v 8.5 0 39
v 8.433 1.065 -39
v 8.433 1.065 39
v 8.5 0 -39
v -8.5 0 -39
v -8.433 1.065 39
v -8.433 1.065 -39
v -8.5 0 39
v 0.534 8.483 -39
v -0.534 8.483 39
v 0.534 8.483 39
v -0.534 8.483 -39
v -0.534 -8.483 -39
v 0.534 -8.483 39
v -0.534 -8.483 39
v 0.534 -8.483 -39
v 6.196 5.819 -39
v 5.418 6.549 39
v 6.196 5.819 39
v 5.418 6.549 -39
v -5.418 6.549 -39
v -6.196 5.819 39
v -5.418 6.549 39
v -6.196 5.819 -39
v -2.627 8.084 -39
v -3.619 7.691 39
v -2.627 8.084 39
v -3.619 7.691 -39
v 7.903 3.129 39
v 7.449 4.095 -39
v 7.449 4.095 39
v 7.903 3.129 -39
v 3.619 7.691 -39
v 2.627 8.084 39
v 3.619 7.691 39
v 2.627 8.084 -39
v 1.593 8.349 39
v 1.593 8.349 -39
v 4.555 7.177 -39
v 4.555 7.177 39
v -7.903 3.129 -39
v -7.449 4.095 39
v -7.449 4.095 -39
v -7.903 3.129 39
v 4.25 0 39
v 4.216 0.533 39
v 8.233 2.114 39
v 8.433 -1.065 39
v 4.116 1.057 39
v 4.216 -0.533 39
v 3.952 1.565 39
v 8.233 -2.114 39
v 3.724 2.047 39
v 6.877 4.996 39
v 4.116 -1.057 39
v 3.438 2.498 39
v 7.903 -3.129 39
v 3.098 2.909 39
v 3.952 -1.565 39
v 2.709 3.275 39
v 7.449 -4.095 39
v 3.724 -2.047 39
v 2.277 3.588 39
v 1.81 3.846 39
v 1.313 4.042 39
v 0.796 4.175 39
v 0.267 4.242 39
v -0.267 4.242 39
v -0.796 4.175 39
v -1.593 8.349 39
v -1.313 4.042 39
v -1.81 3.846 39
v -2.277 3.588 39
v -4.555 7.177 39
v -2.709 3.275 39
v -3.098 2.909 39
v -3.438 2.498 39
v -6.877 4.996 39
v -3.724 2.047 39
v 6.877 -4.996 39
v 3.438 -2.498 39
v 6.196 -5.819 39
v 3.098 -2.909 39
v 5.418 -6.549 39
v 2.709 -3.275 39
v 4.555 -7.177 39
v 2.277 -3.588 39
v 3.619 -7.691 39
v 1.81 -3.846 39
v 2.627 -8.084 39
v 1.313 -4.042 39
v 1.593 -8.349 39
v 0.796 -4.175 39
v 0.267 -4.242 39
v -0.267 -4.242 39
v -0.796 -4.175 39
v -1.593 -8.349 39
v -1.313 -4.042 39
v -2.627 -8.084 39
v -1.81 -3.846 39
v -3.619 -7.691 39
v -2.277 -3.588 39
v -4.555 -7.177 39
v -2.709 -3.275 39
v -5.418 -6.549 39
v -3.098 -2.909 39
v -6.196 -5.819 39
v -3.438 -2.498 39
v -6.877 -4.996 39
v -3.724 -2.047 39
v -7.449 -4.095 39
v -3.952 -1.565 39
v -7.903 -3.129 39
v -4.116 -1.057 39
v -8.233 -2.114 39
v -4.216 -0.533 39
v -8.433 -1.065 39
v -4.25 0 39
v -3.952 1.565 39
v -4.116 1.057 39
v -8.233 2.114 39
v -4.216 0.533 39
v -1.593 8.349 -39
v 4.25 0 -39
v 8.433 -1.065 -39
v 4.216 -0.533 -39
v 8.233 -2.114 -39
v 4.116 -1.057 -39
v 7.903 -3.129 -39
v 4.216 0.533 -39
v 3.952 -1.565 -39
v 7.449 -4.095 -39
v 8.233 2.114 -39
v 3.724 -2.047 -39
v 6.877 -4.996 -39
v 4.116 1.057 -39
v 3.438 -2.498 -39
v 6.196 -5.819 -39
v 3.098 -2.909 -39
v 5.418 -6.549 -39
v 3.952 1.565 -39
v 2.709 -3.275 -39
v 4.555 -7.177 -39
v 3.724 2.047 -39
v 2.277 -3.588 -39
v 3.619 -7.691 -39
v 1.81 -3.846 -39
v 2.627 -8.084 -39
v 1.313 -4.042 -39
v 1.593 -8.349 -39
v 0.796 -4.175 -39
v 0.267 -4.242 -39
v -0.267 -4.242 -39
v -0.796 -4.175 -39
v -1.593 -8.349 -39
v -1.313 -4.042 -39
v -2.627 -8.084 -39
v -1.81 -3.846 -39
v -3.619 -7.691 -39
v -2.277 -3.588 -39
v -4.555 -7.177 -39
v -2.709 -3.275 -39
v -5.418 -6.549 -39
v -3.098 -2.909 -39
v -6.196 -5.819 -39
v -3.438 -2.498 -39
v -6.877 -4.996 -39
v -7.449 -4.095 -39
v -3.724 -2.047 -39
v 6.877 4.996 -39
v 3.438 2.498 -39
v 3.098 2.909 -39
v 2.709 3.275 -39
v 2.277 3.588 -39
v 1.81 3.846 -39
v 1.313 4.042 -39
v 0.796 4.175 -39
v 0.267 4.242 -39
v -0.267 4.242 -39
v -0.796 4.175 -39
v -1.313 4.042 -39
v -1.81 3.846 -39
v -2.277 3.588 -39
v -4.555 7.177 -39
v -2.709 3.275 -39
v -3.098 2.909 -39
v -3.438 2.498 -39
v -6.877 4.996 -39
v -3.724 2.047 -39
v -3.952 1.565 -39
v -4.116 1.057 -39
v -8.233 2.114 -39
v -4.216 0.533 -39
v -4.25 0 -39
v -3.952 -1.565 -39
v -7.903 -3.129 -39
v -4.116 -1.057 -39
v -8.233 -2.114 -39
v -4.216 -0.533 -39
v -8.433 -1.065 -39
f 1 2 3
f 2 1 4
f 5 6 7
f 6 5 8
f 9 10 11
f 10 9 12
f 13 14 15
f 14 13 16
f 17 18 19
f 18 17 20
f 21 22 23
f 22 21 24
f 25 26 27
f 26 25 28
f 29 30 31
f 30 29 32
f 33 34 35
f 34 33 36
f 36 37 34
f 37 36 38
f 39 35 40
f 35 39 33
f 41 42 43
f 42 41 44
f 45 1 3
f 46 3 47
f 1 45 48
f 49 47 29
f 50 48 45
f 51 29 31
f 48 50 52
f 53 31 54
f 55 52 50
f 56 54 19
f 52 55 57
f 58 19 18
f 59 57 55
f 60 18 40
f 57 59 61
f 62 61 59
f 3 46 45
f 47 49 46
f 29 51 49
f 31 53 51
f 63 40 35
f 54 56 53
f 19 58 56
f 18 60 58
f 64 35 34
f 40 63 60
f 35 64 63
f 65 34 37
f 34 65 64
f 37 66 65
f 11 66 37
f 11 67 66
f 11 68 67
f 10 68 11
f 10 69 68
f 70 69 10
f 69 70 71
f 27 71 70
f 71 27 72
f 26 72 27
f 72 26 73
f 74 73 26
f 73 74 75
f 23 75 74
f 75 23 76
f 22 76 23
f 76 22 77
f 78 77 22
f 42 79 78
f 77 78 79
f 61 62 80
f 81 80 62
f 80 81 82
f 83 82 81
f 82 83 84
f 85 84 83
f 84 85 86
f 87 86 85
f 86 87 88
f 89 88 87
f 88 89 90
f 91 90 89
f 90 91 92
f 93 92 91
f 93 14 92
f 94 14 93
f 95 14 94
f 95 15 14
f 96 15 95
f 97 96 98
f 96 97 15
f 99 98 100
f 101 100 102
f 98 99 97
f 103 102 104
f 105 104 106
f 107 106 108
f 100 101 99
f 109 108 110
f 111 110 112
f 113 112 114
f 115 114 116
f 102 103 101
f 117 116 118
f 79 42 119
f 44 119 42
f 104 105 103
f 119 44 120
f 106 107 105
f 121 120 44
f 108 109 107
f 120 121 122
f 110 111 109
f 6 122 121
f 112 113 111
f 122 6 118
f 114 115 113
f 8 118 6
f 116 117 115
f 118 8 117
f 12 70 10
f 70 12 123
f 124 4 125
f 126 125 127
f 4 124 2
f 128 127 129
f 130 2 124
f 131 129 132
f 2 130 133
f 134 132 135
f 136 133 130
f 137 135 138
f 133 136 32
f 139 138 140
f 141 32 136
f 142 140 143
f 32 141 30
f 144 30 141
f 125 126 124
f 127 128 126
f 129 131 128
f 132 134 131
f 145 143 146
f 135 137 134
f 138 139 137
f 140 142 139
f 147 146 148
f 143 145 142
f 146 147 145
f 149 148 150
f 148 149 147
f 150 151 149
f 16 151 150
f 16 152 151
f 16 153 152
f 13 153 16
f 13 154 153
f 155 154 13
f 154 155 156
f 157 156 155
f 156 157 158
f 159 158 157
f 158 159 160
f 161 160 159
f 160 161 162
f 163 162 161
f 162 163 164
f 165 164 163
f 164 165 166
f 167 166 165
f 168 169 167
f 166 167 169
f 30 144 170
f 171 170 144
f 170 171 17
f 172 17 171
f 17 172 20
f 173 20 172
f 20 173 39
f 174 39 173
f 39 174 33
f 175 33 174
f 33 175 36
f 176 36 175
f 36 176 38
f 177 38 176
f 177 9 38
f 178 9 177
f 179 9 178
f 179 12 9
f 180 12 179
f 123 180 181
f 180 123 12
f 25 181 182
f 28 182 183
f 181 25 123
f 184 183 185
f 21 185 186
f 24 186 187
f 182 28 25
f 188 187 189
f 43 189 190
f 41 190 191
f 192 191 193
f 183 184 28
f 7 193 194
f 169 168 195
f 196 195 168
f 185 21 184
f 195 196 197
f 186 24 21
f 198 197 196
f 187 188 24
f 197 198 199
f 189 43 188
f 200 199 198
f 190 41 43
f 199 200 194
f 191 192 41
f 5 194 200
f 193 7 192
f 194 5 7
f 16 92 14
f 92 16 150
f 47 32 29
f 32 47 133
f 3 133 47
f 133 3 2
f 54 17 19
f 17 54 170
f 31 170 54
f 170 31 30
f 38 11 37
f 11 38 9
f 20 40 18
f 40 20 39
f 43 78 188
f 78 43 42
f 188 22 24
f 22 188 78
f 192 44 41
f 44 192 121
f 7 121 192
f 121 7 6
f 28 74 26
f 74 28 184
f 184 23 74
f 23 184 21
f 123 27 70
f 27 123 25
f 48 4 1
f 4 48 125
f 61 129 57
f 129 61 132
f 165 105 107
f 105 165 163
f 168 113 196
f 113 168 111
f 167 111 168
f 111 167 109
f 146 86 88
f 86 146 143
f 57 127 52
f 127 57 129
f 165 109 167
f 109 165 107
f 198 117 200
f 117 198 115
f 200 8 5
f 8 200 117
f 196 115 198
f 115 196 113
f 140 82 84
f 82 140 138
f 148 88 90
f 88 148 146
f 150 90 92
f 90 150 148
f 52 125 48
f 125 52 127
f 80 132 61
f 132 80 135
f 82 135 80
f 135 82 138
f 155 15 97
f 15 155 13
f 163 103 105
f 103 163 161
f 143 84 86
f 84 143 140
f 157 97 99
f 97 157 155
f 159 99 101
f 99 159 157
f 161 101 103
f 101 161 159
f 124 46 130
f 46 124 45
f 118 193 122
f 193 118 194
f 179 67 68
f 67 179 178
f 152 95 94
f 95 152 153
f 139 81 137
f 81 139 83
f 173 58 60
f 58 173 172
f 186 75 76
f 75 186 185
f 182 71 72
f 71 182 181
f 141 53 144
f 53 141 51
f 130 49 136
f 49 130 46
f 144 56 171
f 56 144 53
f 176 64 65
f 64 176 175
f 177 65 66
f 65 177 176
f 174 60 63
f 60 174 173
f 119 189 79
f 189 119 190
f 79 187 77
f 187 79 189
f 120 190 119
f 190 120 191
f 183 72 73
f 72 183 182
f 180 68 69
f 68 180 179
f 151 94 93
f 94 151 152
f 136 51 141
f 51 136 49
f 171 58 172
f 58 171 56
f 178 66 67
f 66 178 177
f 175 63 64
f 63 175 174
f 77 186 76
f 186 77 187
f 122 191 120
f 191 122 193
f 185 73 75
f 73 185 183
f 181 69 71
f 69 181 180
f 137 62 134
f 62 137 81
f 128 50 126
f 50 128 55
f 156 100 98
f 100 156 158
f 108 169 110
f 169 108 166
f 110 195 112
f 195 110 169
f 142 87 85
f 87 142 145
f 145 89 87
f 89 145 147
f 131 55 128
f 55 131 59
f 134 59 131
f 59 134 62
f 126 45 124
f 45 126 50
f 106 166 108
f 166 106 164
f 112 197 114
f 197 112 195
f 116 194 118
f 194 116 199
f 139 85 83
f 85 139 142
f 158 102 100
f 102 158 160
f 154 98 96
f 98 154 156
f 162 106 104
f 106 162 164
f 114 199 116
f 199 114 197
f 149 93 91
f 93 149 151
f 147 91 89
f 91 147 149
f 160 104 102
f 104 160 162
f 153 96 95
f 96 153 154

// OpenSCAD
$fn = 50;


difference() {
	union() {
		translate(v = [0, 0, -39.0000000000]) {
			cylinder(h = 78, r = 8.5000000000);
		}
	}
	union() {
		translate(v = [0, 0, -100.0000000000]) {
			cylinder(h = 200, r = 4.2500000000);
		}
	}
}
